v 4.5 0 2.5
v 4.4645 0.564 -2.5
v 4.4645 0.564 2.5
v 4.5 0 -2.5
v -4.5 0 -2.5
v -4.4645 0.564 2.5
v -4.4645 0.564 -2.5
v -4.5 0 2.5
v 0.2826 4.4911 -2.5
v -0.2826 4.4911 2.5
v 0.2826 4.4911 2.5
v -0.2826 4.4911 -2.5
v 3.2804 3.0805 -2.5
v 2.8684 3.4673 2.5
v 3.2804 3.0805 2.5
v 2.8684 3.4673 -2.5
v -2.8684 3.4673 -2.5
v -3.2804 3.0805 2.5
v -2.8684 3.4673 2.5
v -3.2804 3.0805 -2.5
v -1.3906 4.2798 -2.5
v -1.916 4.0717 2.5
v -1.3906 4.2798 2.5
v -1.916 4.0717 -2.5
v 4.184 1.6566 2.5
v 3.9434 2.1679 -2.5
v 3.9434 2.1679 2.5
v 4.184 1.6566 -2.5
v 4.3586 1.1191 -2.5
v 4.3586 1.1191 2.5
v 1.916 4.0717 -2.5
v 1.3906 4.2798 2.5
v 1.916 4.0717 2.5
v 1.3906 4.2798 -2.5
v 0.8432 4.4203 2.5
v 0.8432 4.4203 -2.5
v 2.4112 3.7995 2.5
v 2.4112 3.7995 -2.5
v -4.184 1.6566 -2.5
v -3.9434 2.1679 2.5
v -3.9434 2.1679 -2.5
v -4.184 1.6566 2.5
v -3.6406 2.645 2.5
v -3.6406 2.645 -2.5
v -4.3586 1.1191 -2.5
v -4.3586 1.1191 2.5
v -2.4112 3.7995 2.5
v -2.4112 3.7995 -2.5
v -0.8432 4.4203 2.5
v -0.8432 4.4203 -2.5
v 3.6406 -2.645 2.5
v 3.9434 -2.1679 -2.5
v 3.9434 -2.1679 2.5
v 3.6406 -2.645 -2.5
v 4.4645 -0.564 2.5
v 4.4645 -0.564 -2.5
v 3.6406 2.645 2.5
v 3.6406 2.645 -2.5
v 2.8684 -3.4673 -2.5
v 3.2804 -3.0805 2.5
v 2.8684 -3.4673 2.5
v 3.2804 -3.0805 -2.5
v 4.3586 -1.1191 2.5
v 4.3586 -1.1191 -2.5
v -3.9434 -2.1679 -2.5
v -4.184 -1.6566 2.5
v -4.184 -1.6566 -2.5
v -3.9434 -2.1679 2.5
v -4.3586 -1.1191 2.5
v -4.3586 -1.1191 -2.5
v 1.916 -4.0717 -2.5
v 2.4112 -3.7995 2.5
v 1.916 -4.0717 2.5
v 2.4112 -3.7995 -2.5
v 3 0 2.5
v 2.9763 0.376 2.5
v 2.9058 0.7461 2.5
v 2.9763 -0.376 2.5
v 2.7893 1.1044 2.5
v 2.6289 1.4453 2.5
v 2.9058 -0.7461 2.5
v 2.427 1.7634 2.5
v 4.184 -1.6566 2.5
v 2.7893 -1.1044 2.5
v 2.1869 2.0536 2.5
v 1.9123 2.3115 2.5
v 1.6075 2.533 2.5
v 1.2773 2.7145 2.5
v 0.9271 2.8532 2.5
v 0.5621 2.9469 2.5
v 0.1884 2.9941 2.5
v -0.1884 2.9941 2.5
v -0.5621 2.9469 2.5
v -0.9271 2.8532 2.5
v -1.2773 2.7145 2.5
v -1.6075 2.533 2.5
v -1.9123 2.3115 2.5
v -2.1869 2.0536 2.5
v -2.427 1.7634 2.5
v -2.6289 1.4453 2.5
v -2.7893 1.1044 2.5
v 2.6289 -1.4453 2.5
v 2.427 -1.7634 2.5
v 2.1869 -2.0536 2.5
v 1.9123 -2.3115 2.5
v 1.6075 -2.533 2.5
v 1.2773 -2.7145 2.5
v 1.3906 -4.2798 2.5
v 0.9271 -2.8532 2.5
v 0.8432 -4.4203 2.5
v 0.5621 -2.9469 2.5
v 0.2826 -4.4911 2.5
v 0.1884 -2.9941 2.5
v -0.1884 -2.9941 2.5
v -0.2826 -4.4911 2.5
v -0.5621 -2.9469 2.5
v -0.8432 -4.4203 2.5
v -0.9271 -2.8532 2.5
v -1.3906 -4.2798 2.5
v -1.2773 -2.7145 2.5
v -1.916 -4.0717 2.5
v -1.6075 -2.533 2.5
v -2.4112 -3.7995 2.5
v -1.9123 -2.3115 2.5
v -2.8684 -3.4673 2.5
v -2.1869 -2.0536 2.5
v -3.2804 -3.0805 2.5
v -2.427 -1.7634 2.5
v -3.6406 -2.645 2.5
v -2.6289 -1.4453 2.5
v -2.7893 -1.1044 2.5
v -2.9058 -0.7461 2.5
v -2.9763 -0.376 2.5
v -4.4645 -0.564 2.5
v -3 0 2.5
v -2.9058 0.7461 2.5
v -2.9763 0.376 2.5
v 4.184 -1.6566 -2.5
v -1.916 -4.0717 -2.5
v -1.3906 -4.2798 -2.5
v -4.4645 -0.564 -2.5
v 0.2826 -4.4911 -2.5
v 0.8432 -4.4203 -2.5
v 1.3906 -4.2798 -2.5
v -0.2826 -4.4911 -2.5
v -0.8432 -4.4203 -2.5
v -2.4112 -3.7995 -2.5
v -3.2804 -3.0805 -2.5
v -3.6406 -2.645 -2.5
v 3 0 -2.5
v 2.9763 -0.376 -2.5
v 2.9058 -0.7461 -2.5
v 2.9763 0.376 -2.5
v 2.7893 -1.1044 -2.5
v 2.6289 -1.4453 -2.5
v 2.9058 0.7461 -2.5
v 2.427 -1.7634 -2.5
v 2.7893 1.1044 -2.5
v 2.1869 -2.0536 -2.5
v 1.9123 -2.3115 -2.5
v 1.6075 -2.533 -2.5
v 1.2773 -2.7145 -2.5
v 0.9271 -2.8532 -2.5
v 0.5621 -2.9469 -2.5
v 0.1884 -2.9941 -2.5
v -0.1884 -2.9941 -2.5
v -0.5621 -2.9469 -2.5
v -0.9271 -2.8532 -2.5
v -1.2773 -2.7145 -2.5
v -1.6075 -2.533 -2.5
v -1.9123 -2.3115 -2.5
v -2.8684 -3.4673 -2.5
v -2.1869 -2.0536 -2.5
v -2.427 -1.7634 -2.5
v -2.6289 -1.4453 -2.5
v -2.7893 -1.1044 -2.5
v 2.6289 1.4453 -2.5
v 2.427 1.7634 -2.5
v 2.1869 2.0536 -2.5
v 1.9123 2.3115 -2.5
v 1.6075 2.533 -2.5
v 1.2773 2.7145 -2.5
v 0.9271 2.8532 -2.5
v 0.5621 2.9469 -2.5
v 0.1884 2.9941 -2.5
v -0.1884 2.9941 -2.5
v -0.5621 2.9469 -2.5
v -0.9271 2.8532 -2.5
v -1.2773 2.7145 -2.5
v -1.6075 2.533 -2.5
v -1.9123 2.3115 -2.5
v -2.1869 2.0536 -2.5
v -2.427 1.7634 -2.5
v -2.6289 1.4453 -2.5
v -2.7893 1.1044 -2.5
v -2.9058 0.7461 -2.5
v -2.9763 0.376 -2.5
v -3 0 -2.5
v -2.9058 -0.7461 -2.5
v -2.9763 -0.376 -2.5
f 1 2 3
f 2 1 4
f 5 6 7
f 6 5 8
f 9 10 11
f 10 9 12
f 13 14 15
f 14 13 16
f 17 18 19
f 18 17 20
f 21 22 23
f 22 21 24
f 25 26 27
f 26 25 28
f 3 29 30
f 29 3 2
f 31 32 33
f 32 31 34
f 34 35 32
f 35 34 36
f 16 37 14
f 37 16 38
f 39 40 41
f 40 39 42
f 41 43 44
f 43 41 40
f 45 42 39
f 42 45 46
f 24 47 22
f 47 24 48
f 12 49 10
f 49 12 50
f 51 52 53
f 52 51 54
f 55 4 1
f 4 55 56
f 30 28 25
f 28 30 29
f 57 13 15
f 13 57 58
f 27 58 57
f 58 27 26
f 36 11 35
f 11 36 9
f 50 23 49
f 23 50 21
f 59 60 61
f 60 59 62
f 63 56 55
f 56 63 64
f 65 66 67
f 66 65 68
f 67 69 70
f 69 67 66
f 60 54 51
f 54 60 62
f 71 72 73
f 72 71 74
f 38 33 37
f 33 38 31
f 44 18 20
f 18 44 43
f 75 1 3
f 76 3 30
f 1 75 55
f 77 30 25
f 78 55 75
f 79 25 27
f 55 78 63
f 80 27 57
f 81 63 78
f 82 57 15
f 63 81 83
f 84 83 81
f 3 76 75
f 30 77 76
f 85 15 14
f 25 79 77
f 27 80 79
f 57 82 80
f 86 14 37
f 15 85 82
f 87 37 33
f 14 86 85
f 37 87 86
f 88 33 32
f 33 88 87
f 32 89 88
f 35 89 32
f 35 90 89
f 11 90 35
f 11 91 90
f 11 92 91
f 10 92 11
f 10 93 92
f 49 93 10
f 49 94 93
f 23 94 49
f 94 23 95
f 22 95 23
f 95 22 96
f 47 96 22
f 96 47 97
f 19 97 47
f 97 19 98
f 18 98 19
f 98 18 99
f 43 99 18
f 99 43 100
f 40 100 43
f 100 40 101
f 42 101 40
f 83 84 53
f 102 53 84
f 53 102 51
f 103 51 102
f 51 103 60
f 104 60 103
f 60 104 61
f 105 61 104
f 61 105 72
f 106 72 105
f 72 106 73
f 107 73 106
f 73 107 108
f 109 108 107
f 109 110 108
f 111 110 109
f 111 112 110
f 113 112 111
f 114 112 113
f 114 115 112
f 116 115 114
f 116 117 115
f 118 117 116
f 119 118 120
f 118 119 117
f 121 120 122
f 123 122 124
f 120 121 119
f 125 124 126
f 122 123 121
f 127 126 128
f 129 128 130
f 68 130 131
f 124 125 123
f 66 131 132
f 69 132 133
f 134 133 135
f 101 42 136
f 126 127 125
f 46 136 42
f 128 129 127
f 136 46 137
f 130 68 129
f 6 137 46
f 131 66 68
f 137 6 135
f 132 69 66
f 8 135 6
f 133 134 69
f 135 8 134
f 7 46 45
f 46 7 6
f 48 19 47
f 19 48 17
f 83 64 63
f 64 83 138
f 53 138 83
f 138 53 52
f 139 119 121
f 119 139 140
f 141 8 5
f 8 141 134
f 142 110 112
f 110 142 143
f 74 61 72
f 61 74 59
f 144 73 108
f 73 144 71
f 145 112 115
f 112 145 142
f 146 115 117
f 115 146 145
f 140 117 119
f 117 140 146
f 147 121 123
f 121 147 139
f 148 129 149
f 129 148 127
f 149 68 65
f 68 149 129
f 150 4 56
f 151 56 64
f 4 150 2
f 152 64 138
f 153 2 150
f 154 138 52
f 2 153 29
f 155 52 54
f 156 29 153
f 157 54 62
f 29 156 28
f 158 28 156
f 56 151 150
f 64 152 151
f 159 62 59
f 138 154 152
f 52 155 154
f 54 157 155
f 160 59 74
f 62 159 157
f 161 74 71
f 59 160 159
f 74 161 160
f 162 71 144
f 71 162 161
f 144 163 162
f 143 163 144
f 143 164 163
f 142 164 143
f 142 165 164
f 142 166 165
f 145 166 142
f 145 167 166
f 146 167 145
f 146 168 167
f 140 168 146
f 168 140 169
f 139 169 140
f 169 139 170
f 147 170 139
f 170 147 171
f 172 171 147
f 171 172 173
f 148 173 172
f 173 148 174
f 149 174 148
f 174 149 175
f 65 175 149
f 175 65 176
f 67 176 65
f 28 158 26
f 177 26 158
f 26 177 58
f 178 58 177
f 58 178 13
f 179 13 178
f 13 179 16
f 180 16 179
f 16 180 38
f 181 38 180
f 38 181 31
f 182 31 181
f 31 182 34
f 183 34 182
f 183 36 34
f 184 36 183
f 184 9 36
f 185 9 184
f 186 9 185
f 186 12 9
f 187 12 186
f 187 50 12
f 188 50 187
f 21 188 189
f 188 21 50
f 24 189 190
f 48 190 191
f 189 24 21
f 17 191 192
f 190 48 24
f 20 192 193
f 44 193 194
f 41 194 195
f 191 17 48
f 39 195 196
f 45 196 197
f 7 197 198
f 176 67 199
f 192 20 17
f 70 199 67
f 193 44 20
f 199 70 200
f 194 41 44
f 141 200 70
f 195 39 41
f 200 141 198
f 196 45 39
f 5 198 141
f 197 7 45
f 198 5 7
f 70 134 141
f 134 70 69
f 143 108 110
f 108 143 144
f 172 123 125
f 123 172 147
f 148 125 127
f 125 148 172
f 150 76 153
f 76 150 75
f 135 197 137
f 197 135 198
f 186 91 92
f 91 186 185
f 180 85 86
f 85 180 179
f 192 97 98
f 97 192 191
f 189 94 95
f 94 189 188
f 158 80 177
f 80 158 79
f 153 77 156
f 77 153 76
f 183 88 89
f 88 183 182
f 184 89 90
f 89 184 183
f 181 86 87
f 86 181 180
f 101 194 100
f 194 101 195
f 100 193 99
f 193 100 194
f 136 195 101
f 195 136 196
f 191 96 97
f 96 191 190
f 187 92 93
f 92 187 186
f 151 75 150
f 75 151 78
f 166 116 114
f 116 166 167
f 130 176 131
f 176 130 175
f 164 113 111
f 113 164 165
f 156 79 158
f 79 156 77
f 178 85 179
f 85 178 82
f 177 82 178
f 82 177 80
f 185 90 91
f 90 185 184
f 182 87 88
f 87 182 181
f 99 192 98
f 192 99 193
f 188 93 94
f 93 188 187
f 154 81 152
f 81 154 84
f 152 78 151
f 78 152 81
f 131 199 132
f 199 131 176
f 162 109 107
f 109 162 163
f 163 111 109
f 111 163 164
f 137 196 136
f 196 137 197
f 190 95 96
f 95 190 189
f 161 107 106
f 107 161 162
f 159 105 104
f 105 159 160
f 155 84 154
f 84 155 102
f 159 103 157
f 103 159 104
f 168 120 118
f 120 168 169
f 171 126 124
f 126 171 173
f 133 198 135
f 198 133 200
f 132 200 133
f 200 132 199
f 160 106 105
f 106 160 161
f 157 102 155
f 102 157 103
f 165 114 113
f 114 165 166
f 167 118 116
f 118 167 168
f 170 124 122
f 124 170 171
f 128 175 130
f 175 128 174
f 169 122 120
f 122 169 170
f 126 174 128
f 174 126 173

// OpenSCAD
$fn = 50;


difference() {
	union() {
		translate(v = [0, 0, -2.5000000000]) {
			cylinder(h = 5, r = 4.5000000000);
		}
	}
	union() {
		translate(v = [0, 0, -100.0000000000]) {
			cylinder(h = 200, r = 3.0000000000);
		}
	}
}
